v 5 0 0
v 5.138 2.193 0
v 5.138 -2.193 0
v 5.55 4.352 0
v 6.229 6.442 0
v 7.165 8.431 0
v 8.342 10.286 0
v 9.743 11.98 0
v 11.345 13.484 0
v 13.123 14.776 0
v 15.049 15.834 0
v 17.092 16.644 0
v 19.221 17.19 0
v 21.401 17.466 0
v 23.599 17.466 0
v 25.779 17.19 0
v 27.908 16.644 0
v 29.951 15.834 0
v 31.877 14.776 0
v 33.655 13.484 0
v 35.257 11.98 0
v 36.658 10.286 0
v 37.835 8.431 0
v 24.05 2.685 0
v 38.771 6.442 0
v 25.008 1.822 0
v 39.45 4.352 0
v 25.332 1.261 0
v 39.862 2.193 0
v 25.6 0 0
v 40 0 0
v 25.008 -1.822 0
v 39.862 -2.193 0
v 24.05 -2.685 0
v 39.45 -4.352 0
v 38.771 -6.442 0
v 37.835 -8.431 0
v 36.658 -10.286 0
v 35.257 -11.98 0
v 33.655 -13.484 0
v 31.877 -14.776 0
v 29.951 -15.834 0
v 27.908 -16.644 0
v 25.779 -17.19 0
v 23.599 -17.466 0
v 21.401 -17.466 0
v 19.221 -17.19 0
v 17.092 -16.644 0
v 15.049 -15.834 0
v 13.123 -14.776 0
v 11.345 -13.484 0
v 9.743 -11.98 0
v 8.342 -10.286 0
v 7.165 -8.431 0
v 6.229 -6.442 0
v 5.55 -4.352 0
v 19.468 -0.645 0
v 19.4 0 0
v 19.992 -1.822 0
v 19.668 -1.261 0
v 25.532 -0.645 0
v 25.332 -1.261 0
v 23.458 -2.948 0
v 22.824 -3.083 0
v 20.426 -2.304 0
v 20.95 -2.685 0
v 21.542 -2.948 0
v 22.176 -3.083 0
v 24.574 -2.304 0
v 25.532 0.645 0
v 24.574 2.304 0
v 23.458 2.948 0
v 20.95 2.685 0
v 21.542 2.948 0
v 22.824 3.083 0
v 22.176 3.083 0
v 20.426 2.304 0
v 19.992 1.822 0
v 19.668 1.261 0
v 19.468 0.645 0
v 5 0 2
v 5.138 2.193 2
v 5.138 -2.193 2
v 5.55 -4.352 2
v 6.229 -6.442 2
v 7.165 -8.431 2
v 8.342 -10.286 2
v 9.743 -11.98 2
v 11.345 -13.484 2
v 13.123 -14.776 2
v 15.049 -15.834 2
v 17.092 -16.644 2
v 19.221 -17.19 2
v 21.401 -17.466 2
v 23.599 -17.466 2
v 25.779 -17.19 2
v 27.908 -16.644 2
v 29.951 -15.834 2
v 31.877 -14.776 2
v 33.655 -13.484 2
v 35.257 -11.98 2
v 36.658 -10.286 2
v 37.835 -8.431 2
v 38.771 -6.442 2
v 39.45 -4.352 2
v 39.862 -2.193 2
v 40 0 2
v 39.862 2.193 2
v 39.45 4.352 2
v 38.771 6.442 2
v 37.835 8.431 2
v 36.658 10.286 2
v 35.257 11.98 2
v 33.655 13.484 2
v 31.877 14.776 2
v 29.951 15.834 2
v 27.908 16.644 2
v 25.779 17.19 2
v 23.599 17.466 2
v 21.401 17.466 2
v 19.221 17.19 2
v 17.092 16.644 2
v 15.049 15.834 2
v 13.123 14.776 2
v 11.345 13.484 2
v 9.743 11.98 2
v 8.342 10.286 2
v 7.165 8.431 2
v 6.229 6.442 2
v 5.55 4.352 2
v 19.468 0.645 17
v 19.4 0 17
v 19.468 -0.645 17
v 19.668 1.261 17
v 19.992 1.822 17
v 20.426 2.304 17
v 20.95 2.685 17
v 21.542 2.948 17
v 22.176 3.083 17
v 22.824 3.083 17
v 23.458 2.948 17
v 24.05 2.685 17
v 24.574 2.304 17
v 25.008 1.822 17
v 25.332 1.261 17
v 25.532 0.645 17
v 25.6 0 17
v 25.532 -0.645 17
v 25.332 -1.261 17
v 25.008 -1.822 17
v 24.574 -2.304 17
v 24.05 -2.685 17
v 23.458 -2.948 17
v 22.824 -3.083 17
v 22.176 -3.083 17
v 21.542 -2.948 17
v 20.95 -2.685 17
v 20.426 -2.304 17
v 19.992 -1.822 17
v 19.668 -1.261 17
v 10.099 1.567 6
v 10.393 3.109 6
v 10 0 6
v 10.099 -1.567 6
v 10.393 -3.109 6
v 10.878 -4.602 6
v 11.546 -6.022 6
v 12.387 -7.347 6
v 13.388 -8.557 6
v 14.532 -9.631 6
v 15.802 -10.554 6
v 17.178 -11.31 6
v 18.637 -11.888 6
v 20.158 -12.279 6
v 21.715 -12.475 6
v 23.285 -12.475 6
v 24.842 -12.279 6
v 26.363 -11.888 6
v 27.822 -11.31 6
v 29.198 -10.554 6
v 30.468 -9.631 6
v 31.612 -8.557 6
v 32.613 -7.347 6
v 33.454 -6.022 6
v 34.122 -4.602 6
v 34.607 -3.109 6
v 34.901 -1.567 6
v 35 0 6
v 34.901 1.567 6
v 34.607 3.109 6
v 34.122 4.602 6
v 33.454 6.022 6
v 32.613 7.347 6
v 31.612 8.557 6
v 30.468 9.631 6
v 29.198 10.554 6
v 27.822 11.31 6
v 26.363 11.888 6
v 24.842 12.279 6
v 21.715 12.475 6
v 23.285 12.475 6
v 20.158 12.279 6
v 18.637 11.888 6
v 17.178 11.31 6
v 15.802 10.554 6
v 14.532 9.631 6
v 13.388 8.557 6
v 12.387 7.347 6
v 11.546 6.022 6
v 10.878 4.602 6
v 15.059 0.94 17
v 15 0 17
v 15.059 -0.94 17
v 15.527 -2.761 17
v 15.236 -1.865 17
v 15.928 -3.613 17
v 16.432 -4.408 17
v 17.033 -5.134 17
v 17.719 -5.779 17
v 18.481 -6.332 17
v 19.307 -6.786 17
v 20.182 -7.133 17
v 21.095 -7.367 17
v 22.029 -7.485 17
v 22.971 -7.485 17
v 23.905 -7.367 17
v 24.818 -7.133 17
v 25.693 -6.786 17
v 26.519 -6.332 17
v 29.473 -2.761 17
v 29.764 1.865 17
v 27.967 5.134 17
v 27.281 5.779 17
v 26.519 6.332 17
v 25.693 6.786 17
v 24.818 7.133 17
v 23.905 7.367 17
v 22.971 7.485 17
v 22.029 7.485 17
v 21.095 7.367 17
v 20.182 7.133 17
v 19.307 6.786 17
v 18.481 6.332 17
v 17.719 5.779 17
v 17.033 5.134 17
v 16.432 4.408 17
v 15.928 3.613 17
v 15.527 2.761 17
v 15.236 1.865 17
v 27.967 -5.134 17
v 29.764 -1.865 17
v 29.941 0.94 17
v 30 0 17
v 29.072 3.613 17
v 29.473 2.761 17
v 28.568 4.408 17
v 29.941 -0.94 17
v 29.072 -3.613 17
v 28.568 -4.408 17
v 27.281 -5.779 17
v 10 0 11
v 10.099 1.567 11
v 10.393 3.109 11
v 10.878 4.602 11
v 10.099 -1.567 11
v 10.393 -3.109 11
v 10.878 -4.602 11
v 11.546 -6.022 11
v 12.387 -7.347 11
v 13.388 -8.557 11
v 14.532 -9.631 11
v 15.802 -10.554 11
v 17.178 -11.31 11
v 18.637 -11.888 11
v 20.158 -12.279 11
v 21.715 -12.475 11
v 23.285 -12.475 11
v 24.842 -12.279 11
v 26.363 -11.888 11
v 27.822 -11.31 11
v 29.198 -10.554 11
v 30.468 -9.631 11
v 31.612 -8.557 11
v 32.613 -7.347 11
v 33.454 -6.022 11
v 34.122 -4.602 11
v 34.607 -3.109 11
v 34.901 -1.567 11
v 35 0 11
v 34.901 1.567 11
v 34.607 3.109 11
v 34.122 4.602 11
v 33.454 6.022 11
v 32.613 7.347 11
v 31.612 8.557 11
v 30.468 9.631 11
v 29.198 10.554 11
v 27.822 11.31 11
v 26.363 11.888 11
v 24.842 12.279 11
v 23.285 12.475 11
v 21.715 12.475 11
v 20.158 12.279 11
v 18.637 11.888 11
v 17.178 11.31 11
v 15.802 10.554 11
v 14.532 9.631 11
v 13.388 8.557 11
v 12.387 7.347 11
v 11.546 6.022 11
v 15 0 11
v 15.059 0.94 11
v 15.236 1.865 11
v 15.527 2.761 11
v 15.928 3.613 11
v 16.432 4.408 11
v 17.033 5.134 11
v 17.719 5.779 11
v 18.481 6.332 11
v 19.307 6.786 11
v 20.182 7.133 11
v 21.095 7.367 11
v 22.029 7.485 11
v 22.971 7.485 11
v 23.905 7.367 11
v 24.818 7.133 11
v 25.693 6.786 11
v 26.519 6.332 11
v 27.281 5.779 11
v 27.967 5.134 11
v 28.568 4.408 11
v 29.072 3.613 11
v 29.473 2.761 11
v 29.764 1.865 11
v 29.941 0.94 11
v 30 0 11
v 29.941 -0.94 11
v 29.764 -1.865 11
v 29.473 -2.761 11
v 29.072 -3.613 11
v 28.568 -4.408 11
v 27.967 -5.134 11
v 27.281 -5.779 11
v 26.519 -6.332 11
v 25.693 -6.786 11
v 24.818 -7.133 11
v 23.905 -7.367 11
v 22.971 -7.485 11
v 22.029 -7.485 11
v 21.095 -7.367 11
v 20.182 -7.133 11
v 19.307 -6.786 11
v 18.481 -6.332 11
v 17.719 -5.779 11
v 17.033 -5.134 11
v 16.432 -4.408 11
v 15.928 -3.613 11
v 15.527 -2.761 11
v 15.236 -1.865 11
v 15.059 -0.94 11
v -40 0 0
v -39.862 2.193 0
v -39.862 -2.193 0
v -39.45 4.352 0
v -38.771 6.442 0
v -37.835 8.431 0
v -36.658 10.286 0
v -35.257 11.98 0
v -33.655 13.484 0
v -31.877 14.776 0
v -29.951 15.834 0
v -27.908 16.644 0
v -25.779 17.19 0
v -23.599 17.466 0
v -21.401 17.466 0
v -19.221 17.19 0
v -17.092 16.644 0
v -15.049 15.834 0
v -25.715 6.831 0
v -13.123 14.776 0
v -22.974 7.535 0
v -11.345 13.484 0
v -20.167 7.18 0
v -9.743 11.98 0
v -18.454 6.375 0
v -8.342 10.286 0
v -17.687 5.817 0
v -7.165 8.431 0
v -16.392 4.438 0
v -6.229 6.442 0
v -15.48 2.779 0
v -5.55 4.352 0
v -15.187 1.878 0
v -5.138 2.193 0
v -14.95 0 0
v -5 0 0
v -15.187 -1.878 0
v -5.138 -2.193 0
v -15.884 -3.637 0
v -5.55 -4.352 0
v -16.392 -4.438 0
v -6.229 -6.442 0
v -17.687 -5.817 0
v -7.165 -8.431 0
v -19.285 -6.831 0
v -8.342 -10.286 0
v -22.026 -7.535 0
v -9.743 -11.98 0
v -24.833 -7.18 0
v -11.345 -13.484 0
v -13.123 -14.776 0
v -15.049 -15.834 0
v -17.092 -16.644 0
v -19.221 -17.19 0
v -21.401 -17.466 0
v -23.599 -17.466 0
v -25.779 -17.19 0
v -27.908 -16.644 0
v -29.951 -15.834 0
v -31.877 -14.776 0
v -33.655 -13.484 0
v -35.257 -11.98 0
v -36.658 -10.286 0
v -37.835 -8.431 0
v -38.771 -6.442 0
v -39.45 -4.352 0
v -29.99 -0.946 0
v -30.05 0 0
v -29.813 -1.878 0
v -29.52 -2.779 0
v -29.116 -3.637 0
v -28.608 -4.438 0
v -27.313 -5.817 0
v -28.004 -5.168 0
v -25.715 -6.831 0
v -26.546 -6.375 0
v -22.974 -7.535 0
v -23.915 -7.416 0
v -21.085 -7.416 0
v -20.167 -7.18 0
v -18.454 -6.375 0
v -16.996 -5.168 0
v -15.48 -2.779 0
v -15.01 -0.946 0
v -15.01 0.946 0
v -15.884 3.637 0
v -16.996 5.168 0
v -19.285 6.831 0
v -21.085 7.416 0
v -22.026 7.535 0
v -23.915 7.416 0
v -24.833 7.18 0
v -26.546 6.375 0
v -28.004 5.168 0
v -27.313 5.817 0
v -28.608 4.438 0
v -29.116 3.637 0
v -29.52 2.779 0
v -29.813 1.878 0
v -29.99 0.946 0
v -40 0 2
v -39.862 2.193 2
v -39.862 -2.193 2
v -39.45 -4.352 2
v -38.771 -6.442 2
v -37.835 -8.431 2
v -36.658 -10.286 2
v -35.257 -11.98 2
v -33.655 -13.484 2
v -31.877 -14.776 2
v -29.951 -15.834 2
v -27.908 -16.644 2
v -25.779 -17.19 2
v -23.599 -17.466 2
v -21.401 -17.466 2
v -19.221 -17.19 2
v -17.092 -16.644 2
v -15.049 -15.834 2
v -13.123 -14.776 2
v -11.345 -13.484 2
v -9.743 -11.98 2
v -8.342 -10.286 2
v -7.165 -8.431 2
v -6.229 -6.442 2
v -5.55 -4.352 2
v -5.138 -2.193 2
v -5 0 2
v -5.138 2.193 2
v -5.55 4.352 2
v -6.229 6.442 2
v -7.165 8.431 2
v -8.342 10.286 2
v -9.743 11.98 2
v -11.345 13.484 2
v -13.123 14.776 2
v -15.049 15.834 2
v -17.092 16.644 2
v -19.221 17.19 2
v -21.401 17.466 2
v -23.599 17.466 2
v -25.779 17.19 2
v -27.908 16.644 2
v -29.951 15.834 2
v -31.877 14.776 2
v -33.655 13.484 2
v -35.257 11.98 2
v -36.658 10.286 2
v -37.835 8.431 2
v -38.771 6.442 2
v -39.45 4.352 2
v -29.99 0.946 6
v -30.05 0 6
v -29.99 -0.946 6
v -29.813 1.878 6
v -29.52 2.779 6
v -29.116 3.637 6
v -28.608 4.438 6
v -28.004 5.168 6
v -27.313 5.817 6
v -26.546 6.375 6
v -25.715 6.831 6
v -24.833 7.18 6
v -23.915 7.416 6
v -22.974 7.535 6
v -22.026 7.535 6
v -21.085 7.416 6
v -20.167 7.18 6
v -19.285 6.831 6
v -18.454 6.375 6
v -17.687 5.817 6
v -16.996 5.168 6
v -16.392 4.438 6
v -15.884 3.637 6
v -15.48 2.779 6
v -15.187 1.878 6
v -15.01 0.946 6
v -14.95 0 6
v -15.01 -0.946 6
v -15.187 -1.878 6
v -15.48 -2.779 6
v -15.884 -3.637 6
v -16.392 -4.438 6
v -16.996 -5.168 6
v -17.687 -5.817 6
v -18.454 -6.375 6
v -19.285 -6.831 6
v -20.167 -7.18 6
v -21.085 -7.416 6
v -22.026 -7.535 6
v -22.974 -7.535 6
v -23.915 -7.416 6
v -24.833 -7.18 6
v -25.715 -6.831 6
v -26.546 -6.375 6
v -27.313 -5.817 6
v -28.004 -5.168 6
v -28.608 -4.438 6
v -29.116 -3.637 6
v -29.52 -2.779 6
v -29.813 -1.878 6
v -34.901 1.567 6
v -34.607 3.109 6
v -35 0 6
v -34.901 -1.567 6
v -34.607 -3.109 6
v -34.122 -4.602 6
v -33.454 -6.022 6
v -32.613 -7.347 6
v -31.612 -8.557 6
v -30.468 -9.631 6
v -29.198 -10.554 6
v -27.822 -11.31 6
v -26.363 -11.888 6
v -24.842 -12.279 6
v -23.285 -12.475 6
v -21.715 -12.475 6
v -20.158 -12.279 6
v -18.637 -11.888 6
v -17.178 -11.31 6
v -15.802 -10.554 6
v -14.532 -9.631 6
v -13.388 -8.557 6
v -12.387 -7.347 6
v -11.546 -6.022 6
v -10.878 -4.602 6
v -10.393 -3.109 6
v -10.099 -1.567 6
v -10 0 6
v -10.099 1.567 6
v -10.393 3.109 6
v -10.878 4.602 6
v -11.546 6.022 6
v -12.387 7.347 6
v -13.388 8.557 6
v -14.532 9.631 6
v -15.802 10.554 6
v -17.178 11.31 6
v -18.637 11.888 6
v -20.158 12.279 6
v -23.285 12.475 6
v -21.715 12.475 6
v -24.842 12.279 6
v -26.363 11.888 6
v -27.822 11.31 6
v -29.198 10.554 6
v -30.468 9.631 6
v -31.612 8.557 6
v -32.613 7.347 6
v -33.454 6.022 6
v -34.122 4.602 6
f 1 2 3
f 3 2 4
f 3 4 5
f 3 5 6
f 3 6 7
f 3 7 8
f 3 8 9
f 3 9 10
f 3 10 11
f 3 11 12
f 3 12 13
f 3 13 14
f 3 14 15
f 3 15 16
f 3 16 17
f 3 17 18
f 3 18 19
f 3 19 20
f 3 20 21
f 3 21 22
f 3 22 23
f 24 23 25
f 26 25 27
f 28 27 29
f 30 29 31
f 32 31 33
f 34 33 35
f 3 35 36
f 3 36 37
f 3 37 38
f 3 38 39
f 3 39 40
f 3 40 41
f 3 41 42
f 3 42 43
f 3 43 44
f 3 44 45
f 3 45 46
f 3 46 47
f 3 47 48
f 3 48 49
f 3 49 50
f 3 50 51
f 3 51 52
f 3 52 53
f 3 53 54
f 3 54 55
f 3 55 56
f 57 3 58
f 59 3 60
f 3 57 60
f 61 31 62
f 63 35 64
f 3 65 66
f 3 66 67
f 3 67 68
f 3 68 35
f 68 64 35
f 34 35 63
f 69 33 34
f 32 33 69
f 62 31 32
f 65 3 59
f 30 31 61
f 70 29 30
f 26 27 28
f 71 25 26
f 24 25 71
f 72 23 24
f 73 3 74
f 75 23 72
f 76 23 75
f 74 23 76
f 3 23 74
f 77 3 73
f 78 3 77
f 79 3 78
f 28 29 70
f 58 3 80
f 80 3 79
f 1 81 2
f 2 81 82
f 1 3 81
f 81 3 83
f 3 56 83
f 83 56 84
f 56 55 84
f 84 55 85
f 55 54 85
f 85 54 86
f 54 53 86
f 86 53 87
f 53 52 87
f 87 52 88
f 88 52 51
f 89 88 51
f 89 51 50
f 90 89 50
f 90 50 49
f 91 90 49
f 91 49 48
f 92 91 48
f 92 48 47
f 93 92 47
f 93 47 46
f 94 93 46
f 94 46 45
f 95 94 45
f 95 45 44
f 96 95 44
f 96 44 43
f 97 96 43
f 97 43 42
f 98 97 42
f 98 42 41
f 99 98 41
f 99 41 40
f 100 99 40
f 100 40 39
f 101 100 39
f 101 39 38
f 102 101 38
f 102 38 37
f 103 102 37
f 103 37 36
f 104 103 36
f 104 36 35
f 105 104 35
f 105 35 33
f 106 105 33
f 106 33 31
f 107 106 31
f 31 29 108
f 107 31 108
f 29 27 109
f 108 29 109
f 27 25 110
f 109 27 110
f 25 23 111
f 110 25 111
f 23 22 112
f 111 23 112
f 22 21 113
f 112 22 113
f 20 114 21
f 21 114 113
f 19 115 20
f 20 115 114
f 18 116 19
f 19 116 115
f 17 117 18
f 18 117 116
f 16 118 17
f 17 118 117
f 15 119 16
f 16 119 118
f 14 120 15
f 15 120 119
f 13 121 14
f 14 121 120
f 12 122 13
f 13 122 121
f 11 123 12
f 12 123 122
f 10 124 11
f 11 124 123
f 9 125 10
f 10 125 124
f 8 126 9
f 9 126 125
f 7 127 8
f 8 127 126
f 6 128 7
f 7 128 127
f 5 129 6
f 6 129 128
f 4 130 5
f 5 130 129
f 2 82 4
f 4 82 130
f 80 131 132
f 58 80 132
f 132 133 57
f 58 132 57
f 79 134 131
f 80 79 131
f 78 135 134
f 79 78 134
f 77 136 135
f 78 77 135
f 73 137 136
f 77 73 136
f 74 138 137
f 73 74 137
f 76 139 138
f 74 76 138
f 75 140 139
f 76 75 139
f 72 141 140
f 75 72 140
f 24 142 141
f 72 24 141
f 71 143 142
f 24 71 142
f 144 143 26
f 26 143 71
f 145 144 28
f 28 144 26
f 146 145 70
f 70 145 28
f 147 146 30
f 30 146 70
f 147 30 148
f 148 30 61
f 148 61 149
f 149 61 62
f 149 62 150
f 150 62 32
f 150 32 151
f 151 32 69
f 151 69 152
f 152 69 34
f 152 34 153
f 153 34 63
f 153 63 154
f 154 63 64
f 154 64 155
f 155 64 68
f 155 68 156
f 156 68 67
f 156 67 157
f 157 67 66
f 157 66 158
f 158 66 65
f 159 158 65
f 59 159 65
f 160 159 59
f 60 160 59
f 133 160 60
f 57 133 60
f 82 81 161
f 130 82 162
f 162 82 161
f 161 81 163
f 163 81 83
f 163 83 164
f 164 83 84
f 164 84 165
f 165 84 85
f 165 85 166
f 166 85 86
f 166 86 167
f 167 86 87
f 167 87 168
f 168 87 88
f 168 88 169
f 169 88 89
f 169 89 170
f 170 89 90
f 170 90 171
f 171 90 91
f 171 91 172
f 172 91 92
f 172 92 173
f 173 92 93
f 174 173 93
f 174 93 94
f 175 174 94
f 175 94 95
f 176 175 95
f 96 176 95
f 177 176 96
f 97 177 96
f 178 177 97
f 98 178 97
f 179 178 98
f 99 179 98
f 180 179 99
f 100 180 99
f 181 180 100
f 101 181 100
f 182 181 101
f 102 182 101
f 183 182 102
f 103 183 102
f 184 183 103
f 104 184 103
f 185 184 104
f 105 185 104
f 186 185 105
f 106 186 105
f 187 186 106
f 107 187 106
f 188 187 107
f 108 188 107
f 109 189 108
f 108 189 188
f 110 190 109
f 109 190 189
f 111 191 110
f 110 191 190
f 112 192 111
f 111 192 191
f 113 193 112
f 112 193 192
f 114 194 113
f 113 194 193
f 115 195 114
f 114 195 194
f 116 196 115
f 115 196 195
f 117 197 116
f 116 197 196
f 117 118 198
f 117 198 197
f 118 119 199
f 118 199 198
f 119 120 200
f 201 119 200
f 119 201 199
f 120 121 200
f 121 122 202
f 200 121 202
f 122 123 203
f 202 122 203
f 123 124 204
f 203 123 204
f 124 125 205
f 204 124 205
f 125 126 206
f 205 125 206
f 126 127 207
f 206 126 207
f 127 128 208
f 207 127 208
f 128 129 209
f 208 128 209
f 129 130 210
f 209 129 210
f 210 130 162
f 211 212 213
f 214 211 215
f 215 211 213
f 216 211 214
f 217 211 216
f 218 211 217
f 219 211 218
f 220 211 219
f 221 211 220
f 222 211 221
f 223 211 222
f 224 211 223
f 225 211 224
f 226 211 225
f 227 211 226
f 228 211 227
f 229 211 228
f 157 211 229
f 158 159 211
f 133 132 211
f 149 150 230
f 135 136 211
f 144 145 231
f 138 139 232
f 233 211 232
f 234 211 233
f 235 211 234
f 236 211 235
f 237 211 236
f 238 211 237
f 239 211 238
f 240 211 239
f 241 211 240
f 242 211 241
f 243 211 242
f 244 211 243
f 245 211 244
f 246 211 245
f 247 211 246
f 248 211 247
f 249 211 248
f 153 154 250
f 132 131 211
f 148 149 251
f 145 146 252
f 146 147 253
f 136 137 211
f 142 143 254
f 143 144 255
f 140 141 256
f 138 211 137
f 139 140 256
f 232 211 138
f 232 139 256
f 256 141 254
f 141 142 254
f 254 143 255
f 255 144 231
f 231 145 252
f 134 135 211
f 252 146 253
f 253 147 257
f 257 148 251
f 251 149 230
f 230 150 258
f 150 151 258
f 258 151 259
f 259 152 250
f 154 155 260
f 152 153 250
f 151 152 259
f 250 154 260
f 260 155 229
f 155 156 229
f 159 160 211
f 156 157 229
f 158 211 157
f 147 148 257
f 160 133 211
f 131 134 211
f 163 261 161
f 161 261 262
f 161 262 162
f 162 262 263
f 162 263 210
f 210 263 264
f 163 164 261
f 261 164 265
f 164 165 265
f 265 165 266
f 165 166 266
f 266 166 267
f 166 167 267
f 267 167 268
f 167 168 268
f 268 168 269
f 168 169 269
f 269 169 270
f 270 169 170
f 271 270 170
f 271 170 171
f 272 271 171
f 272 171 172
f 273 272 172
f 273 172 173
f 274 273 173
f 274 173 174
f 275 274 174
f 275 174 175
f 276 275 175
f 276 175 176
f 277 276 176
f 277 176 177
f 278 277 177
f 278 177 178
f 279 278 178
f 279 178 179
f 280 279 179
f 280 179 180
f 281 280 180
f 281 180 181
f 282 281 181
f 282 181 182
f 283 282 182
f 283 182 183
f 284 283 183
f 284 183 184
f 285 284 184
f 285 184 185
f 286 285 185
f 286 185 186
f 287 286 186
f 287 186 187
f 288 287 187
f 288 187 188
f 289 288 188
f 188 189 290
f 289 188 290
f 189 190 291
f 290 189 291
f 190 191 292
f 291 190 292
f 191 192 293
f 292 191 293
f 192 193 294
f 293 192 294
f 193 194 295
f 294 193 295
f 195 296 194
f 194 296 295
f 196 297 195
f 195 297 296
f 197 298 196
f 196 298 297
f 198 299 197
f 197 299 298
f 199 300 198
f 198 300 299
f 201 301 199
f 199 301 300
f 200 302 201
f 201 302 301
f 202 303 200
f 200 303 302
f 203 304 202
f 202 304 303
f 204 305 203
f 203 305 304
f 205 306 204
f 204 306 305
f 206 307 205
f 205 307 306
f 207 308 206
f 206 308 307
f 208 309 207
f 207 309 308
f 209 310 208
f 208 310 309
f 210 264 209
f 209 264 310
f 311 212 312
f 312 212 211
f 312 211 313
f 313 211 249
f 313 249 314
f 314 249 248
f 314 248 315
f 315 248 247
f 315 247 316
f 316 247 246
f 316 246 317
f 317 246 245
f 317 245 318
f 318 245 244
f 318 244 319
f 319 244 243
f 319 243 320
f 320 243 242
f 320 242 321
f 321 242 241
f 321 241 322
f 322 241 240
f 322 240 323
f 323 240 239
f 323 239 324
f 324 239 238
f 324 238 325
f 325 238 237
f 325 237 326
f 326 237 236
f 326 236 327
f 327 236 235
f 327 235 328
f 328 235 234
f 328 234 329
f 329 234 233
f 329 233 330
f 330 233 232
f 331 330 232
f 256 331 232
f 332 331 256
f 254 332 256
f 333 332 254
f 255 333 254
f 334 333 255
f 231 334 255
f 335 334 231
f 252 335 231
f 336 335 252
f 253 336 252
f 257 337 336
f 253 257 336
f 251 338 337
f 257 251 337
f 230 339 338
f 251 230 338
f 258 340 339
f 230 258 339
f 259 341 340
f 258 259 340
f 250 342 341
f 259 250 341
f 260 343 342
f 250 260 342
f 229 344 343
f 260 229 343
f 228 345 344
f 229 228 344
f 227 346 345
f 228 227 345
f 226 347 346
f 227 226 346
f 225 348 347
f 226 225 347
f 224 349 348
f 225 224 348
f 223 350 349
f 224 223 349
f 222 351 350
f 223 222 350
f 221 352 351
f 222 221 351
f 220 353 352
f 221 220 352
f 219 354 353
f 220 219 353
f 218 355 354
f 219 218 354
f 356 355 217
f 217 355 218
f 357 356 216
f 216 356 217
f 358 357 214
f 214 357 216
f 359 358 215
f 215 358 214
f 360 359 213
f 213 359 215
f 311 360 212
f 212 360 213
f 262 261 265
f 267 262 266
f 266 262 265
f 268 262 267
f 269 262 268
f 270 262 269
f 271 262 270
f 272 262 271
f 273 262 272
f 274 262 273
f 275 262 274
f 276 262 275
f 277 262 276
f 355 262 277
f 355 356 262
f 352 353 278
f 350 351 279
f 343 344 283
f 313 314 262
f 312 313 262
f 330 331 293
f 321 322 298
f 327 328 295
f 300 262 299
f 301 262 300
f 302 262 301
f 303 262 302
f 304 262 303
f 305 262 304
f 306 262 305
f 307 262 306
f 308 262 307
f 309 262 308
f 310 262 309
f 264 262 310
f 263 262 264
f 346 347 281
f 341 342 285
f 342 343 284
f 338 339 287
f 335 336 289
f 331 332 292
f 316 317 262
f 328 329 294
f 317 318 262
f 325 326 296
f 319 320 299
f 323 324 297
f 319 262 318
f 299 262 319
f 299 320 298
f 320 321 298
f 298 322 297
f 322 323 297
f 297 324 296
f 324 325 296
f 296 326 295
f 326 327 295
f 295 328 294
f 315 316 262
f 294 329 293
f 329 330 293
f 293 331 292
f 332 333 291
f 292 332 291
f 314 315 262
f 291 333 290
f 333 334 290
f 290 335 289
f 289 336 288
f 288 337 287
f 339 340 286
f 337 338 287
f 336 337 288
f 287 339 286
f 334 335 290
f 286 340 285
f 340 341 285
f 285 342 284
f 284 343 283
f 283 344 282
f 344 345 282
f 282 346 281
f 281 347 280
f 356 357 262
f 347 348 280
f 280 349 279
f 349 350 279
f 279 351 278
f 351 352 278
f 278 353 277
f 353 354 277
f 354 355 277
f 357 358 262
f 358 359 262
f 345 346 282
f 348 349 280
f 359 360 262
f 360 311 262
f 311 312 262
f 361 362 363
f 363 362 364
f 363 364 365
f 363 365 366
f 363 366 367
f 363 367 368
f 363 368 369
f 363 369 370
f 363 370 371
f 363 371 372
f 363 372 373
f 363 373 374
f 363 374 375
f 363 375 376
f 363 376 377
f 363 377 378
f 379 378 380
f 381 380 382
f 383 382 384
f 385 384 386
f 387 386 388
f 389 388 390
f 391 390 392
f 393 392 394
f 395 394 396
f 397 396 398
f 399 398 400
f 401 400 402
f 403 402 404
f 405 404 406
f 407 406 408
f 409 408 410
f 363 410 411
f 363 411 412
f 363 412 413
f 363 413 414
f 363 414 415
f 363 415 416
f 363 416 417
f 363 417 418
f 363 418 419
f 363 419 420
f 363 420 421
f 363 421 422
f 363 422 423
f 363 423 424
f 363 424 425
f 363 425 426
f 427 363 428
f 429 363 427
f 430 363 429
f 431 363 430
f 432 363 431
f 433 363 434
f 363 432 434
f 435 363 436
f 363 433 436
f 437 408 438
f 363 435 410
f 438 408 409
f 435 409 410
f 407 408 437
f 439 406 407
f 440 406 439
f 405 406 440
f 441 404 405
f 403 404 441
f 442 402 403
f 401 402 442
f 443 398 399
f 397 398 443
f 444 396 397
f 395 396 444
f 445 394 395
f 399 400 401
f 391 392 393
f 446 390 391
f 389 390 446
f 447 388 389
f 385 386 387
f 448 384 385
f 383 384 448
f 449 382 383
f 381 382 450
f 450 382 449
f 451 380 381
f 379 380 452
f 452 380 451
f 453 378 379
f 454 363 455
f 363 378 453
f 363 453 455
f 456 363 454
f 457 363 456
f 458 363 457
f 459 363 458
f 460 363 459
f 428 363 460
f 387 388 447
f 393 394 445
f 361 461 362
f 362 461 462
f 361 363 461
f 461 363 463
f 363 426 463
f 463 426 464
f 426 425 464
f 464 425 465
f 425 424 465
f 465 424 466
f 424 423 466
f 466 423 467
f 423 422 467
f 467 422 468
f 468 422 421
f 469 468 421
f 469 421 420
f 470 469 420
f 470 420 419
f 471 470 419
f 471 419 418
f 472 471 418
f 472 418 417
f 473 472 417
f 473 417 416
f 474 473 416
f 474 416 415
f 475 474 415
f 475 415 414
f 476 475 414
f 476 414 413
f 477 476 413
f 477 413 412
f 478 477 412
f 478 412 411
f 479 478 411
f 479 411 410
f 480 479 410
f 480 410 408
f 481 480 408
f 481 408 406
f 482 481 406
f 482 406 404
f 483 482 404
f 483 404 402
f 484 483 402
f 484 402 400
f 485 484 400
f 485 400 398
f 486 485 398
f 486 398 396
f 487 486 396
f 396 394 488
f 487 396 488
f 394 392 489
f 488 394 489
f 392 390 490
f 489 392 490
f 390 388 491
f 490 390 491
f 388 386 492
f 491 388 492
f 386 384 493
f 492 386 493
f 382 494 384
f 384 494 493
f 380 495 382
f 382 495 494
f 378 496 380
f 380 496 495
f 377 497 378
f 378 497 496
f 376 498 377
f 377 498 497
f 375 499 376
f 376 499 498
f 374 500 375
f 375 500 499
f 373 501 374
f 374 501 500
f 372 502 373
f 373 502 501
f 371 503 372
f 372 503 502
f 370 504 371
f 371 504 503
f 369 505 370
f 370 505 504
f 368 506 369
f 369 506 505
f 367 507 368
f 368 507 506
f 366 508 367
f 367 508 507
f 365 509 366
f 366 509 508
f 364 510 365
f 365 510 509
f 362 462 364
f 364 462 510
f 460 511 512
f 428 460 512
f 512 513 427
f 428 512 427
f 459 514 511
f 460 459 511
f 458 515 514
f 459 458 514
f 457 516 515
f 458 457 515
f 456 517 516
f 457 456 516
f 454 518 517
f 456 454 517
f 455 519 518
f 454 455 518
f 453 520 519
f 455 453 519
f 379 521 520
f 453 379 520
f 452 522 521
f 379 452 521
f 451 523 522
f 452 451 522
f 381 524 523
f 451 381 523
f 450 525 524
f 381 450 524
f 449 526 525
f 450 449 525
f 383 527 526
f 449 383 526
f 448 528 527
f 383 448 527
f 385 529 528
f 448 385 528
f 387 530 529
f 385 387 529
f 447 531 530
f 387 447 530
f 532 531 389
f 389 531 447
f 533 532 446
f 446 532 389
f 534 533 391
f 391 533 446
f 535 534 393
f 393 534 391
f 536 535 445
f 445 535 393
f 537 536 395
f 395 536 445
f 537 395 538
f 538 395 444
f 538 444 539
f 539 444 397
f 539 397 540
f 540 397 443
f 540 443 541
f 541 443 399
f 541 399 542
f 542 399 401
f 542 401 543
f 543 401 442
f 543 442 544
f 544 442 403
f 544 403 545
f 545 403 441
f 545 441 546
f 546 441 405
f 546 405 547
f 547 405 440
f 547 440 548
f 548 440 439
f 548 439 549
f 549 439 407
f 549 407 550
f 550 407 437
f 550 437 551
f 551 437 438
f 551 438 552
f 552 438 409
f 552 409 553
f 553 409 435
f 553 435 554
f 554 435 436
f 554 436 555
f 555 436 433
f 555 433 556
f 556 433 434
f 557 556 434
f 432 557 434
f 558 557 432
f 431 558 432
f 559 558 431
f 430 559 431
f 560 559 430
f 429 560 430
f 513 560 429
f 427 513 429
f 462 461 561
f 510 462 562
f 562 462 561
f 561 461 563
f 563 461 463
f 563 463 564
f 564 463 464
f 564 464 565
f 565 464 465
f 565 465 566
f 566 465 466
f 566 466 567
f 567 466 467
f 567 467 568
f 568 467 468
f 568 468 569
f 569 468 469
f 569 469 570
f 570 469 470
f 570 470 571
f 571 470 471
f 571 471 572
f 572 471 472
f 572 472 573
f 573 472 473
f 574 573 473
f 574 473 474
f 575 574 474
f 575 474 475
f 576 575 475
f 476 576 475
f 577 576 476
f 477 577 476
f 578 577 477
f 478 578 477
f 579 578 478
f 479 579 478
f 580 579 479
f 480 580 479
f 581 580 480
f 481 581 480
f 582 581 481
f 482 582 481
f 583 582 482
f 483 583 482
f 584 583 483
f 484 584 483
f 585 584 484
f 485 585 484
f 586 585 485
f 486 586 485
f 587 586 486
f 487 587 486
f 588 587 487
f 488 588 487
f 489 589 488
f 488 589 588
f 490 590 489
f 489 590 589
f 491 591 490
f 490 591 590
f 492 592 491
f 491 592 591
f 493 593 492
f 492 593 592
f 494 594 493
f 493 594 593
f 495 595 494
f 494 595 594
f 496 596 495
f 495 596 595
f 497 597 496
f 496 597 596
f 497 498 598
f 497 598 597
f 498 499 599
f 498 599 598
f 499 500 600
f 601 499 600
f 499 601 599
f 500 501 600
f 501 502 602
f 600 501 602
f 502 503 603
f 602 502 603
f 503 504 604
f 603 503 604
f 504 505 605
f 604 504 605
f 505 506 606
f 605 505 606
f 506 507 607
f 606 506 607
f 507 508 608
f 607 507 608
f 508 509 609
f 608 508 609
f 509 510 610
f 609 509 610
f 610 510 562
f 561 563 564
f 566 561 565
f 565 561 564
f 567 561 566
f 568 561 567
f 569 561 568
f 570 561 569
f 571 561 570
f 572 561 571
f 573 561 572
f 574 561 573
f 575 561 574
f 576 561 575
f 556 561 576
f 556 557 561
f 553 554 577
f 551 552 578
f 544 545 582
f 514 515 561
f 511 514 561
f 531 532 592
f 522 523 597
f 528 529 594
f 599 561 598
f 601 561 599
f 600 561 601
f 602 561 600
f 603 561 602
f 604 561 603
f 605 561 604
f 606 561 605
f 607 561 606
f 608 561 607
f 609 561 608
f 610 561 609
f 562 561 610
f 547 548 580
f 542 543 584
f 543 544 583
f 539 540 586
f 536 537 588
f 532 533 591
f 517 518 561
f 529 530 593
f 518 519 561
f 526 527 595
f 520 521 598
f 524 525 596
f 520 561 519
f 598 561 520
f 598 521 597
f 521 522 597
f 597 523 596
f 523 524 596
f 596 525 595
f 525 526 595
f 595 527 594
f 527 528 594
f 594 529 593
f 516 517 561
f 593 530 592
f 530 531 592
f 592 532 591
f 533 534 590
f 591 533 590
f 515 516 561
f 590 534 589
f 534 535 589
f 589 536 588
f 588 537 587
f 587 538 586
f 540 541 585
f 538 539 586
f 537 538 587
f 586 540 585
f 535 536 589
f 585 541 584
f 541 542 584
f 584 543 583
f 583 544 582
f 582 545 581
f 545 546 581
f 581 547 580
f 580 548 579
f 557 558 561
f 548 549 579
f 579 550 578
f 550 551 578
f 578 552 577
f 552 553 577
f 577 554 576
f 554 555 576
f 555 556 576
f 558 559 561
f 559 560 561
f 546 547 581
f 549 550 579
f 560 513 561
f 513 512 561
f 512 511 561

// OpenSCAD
translate([35/2+5,0,0])
difference(){
union(){
cylinder(r=15/2, h=17, $fn=50);
cylinder(r=25/2, h=11, $fn=50);

cylinder(r=35/2, h=2, $fn=50);
translate([0,0,2])cylinder(r1=35/2, r2=25/2, h=4, $fn=50);
}
translate([0,0,-0.01])#cylinder(r=6.2/2,h=20,$fn=30);
}


translate([-35/2-5,0,0])
difference(){
union(){

cylinder(r=35/2, h=2, $fn=50);
translate([0,0,2])cylinder(r1=35/2, r2=25/2, h=4, $fn=50);
}
translate([0,0,-0.01])#cylinder(r=15.1/2, h=8, $fn=50);
}
